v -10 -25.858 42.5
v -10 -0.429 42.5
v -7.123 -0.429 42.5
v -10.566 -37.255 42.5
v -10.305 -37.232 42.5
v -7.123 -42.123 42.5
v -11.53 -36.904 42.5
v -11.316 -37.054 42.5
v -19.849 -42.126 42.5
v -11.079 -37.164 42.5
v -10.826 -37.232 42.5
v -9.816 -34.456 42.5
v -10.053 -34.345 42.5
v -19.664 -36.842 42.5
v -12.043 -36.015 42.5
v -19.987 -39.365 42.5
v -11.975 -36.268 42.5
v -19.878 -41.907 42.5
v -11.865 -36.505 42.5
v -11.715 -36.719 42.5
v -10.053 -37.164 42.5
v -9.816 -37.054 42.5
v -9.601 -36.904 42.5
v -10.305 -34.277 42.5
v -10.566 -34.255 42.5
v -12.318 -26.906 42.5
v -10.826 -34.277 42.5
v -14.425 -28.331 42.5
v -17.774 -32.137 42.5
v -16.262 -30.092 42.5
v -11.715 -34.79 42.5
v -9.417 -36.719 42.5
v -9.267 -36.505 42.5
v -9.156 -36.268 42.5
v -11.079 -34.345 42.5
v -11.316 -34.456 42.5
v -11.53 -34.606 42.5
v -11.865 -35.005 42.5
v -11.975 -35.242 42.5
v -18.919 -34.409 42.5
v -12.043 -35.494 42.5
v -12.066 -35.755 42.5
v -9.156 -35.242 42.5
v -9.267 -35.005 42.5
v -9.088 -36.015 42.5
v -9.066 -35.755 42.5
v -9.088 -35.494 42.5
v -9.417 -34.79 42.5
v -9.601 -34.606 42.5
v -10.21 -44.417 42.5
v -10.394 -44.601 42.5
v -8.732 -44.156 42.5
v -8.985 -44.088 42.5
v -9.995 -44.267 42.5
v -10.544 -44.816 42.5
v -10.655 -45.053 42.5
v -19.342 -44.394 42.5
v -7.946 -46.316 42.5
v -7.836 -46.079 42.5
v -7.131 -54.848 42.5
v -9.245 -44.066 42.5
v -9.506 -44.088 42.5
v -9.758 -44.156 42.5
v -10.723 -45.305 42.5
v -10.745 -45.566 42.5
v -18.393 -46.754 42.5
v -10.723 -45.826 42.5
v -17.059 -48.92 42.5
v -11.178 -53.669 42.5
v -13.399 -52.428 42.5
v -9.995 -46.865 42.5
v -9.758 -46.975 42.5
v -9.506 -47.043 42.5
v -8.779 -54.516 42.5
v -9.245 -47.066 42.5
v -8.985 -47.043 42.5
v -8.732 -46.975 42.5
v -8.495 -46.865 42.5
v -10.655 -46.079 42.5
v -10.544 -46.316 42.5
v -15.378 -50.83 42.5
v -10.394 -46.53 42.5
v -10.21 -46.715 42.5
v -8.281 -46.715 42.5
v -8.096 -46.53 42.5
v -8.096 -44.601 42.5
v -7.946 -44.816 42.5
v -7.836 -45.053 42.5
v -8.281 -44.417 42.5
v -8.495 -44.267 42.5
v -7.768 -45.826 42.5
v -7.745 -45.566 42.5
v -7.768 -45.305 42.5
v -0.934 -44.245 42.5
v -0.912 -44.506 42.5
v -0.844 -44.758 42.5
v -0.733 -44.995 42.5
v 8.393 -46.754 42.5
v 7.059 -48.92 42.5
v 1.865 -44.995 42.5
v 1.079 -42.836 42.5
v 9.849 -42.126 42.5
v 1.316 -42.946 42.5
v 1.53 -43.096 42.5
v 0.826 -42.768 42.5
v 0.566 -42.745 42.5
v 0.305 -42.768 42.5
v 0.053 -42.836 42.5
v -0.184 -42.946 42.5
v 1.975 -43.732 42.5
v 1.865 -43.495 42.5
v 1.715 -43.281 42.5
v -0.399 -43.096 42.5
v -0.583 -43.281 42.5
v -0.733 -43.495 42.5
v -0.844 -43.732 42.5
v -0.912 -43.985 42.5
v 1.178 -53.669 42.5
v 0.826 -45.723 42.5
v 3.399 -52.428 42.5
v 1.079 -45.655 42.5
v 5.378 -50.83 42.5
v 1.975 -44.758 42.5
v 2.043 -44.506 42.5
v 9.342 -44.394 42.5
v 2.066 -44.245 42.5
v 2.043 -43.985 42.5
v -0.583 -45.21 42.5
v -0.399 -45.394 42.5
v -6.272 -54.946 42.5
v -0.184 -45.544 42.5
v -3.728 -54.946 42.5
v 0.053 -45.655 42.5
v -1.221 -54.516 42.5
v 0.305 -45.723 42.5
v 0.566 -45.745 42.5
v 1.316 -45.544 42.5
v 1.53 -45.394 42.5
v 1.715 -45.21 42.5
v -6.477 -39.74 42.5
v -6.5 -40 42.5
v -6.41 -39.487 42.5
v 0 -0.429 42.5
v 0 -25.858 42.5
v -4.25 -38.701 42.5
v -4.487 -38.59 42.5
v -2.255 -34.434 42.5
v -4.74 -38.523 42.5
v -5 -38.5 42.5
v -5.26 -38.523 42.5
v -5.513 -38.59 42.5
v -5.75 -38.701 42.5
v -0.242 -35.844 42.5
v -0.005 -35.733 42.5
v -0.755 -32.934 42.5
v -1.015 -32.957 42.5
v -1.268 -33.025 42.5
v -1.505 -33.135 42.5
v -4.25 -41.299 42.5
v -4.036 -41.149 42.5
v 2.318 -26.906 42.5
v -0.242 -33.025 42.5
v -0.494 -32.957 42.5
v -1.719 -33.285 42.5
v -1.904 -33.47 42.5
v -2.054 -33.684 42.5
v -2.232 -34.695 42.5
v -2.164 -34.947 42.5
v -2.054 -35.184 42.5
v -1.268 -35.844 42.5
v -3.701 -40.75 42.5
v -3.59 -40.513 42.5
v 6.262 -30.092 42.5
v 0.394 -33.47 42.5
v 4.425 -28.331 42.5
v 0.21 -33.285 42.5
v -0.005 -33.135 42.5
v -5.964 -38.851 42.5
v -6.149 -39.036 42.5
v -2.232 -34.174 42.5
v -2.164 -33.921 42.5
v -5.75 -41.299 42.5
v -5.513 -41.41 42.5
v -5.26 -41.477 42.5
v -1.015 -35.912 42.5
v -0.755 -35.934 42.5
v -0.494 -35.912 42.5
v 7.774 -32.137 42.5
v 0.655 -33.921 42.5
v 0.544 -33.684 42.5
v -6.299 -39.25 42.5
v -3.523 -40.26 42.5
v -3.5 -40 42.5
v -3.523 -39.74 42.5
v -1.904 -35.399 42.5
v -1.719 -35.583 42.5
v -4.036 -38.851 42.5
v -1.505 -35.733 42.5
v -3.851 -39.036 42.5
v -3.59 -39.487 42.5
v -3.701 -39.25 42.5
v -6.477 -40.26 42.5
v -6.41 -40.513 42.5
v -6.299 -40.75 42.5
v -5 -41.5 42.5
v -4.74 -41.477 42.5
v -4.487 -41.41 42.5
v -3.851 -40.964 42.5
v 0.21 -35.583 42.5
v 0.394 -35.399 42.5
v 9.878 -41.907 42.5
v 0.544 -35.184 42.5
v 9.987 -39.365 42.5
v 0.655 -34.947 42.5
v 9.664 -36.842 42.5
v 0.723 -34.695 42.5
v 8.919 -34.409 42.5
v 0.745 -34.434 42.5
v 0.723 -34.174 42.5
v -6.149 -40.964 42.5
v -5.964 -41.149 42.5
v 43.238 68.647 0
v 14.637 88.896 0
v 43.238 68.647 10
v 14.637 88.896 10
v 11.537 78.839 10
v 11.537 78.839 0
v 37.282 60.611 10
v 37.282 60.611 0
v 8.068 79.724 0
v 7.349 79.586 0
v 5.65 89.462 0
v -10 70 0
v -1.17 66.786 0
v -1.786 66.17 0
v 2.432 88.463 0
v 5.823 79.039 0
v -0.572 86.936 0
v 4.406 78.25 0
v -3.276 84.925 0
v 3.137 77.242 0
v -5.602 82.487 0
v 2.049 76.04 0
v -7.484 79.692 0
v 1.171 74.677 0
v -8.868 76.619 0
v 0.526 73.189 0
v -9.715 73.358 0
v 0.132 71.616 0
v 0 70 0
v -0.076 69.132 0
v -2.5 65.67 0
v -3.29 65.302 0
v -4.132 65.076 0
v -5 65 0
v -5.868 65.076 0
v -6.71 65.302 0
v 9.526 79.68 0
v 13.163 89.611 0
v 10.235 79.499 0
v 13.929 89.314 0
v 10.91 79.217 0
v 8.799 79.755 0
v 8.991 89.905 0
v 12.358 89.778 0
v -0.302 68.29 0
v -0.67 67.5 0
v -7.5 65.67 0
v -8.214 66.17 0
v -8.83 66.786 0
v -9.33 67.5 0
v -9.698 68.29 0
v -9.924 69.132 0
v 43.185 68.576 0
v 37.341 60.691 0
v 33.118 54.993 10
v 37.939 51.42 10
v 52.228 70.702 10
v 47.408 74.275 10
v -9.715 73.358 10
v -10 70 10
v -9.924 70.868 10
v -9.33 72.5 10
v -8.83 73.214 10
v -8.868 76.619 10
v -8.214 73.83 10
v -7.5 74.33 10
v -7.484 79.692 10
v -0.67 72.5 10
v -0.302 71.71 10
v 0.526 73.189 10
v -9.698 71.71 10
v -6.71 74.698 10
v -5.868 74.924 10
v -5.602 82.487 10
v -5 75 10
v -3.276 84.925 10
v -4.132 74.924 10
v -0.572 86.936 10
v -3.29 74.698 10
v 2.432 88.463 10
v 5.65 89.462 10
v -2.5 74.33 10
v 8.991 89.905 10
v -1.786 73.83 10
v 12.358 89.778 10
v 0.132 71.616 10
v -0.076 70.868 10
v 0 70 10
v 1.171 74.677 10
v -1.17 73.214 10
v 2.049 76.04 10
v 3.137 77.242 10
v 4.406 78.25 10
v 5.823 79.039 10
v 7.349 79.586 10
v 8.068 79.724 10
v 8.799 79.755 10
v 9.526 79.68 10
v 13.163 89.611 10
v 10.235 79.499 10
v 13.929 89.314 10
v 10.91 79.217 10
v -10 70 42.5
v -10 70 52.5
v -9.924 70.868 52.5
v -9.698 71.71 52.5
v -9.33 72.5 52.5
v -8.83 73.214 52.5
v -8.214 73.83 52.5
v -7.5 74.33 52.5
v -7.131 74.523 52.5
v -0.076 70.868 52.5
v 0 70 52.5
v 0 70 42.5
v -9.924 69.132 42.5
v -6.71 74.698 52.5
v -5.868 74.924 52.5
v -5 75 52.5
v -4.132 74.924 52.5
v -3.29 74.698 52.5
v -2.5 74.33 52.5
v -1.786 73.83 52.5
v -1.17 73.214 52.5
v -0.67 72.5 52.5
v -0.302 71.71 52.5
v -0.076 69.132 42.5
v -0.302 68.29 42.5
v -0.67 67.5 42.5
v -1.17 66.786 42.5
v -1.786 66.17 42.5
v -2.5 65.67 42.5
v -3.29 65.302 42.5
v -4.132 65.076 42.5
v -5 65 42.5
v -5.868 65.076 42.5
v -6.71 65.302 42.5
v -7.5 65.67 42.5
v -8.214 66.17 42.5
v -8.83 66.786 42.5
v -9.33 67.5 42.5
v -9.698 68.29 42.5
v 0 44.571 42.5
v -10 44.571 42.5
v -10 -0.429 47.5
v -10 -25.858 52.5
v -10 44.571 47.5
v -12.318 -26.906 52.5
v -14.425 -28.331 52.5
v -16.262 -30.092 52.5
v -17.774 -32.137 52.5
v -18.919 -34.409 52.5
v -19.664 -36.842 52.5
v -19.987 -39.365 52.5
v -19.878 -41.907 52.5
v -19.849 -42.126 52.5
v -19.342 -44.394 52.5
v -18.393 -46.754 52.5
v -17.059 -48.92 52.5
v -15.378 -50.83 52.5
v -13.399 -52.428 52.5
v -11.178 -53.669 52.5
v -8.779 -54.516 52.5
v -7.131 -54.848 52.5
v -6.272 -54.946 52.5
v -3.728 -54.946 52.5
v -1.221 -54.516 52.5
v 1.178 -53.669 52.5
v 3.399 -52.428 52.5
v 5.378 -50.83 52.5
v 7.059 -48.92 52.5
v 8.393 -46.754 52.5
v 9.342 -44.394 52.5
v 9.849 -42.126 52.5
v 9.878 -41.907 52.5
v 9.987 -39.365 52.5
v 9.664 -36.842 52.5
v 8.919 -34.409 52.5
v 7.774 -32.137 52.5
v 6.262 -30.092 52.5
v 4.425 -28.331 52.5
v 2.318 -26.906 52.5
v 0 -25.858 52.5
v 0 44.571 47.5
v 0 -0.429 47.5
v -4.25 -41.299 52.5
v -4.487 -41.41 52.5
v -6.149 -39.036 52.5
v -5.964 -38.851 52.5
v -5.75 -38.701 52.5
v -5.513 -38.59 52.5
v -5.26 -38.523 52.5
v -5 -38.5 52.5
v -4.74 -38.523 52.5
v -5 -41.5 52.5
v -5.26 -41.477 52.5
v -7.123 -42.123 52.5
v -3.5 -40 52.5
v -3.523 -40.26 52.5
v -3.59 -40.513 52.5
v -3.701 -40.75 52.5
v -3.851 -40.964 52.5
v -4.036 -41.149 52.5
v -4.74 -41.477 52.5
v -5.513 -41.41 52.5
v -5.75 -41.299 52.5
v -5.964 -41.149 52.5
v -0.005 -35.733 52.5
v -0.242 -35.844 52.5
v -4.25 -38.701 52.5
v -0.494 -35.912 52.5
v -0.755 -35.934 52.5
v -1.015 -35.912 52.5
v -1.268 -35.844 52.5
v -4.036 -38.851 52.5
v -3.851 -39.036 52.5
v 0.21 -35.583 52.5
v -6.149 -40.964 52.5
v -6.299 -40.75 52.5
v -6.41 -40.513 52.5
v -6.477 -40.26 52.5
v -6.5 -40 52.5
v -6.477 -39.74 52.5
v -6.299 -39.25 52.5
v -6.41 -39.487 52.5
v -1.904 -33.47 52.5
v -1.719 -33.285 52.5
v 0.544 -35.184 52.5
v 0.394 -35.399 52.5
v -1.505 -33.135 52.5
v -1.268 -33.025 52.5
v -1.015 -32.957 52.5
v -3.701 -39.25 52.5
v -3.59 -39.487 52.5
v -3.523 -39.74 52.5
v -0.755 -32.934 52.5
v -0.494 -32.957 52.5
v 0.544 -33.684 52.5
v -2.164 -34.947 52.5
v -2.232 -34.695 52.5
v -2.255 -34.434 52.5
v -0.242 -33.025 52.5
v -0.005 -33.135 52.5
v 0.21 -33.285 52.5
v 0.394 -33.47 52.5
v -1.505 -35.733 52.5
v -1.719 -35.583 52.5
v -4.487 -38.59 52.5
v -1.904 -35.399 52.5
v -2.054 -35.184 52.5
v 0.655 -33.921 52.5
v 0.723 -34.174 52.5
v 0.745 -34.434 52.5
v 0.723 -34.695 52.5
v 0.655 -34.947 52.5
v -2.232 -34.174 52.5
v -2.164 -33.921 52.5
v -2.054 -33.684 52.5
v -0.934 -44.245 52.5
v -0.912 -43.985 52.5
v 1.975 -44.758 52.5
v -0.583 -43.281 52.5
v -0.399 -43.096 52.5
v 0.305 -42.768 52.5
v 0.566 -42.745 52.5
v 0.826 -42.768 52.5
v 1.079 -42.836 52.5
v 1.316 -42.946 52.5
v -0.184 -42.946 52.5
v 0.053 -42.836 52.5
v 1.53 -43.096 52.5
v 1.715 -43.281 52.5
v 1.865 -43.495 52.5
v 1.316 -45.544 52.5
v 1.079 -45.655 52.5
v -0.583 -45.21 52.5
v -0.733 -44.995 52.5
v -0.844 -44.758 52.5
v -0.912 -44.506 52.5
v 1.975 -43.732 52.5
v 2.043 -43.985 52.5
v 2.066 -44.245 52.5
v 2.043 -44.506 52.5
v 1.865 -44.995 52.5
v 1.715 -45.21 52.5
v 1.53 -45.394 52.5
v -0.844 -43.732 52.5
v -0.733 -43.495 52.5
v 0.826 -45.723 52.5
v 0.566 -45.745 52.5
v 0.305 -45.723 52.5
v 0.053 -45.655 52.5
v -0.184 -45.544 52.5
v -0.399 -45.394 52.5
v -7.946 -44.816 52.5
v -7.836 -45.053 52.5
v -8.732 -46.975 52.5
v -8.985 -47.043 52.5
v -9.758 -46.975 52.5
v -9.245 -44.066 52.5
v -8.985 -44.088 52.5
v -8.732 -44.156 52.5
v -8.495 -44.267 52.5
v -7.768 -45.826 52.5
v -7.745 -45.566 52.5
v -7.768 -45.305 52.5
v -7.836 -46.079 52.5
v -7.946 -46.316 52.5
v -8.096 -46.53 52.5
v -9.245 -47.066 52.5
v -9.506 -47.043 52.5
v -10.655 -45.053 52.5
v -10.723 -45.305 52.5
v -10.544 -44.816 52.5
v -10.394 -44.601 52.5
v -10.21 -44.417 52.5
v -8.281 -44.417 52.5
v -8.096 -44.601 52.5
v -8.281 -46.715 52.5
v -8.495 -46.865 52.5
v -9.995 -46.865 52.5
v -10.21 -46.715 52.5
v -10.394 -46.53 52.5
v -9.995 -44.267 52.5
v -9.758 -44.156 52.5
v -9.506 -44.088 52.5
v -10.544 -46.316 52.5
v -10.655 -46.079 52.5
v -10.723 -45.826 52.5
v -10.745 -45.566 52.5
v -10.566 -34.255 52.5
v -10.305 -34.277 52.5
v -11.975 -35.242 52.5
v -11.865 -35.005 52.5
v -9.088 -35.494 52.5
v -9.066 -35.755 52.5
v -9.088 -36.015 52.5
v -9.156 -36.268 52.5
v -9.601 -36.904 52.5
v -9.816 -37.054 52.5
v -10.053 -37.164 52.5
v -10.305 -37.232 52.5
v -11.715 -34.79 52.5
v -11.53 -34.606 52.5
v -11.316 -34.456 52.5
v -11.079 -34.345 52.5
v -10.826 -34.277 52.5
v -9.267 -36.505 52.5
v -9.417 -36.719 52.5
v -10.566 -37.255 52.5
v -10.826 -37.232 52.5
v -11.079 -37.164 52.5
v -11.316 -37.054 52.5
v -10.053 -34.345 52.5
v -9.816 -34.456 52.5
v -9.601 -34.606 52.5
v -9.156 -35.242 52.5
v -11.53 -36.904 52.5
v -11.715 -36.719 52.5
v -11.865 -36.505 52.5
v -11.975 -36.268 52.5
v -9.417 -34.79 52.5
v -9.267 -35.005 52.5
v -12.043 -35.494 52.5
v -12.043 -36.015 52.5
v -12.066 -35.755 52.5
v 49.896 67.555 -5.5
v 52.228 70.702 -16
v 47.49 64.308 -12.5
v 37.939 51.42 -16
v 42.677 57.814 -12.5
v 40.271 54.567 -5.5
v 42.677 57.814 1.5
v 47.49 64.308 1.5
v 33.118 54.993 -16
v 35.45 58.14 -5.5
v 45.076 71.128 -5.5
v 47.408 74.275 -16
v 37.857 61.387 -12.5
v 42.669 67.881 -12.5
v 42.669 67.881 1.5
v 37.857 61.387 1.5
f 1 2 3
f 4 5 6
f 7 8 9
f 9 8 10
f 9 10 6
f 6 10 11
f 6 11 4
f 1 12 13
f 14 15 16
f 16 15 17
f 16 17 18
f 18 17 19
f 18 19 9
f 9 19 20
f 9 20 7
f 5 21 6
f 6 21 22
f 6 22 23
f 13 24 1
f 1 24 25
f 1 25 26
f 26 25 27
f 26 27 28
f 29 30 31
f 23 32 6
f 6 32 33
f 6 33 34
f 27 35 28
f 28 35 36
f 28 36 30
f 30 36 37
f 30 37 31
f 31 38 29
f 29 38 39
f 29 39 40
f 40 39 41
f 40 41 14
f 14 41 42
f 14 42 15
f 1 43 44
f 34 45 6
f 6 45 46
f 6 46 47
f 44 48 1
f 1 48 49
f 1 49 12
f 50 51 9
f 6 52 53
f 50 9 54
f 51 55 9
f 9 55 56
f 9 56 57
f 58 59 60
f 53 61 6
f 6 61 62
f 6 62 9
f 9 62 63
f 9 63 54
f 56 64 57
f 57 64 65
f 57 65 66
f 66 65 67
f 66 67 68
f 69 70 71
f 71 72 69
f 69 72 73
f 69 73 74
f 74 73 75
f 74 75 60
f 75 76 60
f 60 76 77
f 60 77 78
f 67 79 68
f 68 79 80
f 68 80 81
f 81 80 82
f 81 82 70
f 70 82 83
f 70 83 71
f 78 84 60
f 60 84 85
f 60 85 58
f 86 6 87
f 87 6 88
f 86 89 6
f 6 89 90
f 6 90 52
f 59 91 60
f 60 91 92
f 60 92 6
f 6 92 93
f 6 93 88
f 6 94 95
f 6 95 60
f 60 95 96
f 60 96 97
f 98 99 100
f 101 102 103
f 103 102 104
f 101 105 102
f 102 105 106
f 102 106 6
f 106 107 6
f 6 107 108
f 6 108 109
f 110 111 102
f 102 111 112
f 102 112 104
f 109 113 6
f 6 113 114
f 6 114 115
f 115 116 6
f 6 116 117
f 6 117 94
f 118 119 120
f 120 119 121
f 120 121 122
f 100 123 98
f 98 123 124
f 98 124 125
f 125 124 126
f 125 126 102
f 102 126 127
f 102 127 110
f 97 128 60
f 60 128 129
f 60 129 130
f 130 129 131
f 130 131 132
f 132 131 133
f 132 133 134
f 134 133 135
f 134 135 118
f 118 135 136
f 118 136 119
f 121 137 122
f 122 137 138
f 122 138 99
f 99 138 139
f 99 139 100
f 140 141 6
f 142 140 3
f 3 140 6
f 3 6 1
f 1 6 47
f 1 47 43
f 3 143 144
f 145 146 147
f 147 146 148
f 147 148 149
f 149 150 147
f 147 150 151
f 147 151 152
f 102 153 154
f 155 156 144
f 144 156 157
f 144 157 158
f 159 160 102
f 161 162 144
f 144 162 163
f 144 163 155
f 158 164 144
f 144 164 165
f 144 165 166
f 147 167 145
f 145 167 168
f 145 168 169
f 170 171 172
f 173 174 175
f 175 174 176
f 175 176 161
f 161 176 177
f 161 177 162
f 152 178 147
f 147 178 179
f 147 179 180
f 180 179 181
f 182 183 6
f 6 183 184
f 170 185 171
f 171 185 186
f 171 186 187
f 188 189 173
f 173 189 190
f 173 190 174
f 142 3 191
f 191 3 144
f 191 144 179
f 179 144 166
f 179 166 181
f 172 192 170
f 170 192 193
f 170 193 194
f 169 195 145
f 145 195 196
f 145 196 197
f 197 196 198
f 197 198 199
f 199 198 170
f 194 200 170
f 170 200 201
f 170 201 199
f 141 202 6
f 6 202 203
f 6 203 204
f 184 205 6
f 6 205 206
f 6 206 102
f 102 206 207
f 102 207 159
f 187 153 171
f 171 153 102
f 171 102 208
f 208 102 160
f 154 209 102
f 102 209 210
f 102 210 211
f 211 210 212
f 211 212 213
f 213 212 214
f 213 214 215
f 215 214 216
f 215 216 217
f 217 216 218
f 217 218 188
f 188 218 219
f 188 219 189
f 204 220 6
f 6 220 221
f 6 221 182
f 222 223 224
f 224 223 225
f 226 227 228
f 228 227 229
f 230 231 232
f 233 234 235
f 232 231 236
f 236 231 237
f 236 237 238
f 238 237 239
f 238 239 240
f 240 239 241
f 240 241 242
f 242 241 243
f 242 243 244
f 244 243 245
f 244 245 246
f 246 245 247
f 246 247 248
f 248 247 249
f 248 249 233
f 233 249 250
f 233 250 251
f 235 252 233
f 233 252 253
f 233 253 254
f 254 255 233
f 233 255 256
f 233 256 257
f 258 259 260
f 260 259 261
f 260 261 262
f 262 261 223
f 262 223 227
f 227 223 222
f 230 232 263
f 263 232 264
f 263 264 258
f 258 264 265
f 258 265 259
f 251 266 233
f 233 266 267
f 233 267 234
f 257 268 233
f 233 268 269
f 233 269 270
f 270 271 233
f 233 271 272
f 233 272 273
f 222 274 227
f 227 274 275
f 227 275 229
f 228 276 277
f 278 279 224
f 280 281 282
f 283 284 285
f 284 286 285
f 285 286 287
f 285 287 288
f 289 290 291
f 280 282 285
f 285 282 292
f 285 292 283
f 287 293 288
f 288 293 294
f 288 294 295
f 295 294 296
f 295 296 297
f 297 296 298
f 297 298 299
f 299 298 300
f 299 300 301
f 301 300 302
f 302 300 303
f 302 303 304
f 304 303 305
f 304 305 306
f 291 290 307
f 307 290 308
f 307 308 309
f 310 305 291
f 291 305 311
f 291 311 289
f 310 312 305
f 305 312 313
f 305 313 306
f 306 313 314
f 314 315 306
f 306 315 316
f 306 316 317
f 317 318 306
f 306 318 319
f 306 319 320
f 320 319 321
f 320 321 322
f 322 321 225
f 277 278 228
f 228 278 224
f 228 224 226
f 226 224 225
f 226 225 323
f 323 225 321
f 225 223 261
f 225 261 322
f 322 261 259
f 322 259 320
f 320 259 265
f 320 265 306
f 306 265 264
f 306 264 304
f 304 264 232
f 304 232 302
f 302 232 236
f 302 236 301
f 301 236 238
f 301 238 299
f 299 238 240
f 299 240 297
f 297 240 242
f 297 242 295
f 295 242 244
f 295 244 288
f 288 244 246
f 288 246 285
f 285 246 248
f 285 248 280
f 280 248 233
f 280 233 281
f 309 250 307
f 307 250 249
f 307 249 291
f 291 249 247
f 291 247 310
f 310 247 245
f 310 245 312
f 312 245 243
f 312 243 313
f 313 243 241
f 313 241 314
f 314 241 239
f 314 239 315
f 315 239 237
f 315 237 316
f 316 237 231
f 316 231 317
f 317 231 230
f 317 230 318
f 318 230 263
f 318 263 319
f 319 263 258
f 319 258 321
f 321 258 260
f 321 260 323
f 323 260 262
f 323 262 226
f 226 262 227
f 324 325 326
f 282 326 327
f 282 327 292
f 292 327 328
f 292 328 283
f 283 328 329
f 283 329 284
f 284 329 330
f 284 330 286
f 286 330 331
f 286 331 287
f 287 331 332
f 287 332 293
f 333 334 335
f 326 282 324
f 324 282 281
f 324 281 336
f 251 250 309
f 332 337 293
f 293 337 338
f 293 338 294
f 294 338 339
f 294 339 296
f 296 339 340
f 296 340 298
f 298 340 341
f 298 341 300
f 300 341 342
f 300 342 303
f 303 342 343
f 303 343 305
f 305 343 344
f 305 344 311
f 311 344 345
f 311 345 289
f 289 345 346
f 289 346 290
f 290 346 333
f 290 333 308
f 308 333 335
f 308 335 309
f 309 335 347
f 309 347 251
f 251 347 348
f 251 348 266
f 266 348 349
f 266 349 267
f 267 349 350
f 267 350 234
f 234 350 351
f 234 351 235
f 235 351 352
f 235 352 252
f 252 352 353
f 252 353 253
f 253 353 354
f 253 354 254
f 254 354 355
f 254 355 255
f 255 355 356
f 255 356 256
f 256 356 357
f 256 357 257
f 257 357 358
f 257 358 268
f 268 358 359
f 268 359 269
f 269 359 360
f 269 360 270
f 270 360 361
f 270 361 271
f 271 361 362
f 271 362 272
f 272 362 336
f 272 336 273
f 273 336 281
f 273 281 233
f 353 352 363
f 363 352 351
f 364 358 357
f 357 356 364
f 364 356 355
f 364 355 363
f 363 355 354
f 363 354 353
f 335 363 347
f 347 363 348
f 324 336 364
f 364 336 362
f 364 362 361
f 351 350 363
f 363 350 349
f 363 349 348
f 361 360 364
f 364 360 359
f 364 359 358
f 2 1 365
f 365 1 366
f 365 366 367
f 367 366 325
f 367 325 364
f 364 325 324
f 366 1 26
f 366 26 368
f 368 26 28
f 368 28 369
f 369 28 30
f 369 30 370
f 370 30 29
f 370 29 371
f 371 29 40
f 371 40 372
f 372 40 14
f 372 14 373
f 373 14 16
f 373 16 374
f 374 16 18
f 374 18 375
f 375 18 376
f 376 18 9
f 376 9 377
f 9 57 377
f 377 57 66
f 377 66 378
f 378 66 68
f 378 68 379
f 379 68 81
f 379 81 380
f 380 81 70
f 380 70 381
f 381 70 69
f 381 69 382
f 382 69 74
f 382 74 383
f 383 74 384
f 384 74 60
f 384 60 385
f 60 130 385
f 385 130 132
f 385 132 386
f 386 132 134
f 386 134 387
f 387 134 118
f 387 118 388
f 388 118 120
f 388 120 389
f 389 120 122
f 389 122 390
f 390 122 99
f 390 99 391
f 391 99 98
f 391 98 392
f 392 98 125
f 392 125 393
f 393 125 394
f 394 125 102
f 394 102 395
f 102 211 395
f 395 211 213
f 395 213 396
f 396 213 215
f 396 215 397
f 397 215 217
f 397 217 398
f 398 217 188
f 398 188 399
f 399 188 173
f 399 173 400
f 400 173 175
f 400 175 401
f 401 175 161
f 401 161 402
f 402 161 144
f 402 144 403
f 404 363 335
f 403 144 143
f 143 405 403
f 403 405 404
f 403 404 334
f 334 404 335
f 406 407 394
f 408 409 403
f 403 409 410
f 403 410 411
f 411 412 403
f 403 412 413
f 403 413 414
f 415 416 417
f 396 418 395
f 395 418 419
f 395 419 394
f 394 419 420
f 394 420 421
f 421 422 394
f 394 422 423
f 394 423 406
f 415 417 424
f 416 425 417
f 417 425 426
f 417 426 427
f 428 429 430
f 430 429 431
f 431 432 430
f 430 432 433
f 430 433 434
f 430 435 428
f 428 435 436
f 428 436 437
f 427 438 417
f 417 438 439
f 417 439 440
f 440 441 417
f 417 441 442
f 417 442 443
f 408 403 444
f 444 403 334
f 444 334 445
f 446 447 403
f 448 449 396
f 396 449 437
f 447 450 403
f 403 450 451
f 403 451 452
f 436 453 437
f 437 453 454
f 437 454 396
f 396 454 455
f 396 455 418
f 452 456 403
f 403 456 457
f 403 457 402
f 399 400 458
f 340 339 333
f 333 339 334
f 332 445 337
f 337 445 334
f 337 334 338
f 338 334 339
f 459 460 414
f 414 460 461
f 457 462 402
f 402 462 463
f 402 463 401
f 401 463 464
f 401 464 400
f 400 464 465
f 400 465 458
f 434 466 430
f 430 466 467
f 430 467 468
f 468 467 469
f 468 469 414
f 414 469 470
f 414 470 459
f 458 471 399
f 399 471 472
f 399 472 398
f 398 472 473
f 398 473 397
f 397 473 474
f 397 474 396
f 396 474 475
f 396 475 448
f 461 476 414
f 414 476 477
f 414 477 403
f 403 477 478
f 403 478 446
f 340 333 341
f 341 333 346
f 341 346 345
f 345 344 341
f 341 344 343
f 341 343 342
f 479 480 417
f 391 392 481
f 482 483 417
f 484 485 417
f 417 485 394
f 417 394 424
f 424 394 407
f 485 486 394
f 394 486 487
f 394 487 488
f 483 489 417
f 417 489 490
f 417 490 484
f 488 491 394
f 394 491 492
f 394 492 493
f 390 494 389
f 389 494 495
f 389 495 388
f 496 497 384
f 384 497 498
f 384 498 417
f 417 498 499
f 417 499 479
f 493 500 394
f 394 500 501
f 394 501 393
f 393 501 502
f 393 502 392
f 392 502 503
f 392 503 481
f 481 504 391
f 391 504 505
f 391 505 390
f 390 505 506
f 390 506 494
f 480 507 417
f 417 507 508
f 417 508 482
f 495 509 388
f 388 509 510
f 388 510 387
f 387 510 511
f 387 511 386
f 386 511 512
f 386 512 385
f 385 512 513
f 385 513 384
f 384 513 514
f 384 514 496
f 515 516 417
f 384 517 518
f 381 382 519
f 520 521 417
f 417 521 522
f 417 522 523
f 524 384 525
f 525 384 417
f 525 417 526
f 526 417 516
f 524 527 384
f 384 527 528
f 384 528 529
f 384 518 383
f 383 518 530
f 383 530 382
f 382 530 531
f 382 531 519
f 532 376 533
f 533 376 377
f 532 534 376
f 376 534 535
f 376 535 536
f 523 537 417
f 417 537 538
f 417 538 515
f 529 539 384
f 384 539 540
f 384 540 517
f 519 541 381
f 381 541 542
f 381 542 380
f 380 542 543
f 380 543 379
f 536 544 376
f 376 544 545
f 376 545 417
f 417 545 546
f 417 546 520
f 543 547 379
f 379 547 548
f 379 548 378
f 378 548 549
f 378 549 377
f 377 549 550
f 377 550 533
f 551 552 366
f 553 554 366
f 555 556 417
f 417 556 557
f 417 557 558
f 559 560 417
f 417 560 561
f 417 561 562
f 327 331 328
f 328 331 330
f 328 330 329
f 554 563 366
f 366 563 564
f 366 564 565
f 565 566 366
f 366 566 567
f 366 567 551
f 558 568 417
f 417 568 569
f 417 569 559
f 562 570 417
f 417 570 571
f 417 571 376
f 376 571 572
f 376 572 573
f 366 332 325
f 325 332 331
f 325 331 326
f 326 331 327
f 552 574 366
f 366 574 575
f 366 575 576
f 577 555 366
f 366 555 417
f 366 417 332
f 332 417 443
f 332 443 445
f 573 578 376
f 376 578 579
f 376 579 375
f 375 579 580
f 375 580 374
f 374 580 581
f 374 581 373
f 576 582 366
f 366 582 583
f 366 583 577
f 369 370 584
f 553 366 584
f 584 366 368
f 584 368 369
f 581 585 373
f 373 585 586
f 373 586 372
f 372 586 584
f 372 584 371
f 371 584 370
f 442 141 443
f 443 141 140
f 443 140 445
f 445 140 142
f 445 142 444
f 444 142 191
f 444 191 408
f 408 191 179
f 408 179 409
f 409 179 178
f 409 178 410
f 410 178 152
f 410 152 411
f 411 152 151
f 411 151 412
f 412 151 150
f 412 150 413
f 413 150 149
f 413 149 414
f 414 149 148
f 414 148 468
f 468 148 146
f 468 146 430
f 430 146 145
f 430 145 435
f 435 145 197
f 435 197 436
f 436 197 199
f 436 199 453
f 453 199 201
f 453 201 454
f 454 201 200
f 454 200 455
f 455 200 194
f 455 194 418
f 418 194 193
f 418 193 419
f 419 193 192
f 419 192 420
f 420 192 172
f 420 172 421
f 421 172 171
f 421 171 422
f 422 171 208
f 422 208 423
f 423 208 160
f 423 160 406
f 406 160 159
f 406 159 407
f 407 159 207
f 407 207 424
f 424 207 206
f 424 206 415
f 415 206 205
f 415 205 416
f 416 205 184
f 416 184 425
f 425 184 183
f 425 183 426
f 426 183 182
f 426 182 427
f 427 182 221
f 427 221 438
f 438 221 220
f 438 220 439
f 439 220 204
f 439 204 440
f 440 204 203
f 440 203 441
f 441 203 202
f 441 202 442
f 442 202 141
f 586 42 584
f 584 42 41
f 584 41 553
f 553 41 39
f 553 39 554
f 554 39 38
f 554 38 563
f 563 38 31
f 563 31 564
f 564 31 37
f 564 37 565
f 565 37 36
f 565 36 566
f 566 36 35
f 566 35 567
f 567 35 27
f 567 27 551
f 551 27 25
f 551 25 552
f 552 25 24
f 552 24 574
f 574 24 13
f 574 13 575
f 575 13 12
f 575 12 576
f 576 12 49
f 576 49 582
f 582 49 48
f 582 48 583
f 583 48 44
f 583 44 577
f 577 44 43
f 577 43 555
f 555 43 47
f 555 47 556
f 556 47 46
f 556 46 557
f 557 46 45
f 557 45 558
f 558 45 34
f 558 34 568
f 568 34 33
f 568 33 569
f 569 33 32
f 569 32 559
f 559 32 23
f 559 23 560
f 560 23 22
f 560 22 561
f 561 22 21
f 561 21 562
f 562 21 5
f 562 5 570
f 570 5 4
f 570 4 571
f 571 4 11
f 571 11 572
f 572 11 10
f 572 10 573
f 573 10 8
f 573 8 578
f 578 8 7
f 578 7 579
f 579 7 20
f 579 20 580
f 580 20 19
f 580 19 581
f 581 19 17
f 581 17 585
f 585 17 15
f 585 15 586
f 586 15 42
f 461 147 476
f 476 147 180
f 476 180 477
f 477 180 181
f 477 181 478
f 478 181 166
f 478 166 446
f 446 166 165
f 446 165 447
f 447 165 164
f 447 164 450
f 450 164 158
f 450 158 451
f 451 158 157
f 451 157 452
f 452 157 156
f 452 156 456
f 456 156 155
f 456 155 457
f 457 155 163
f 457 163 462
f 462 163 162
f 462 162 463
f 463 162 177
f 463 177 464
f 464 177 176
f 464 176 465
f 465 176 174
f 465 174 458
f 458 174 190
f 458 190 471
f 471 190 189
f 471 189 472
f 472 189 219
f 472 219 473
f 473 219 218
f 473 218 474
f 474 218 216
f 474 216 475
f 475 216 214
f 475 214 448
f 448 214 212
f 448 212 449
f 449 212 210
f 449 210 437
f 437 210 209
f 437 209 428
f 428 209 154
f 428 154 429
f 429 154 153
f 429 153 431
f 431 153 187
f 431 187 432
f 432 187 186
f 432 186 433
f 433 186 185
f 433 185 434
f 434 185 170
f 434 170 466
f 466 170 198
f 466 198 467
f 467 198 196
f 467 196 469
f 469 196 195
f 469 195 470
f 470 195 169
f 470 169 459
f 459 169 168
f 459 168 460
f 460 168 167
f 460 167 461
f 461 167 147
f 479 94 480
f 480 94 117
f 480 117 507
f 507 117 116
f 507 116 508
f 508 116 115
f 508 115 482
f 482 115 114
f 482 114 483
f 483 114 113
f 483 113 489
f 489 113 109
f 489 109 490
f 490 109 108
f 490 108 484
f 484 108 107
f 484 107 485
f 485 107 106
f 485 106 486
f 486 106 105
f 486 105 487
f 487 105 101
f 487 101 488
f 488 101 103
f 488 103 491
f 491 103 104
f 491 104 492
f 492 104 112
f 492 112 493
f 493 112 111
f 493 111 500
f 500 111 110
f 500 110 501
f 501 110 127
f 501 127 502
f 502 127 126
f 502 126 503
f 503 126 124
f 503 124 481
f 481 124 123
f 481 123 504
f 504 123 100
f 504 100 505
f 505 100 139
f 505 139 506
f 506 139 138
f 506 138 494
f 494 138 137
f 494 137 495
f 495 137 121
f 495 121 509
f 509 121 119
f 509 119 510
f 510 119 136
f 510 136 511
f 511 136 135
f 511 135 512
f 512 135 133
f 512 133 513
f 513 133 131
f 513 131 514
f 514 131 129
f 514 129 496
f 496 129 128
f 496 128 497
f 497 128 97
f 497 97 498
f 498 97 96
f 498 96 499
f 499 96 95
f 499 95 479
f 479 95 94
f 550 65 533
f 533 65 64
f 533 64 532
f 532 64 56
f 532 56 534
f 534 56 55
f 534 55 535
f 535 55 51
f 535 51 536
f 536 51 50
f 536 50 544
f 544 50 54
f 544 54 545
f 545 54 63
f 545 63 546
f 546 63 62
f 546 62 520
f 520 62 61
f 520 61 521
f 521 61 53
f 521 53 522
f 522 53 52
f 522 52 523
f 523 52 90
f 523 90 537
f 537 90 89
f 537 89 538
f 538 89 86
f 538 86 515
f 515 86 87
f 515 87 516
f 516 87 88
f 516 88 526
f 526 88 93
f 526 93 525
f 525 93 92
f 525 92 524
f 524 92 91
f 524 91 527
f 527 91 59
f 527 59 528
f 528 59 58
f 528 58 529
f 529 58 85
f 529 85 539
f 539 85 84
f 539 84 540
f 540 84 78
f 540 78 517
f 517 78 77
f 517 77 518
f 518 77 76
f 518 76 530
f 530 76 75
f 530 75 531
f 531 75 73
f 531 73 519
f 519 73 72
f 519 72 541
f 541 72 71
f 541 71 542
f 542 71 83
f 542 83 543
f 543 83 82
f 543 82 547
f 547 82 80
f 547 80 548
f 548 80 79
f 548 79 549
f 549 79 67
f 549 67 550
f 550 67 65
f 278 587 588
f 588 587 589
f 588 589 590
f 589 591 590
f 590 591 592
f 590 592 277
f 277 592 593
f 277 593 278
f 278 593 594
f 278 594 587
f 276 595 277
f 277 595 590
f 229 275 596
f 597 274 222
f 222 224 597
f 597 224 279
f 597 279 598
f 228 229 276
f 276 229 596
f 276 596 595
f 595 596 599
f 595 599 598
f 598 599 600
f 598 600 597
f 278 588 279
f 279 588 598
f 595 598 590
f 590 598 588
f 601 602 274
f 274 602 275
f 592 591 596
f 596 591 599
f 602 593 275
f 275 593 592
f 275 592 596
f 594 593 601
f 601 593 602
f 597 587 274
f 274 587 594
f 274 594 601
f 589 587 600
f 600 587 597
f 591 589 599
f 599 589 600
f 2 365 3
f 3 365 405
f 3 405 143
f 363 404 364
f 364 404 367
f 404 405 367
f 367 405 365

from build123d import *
from build123d.topology import SkipClean

# Parameters (mm, degrees)
BOSS_EXTRUDE1_DEPTH  = 10
SKETCH6_R            = 5
BOSS_EXTRUDE4_DEPTH  = 32.5
SKETCH10_W           = 10
SKETCH10_H           = 45
CUT_EXTRUDE5_DEPTH   = 10
CUT_EXTRUDE10_START  = -10
CUT_EXTRUDE10_DEPTH  = 10
BOSS_EXTRUDE8_DEPTH  = 10
SKETCH19_R           = 1.5
CUT_EXTRUDE11_DEPTH  = 110.357366333
BOSS_EXTRUDE9_DEPTH  = 16
BOSS_EXTRUDE10_DEPTH = 10
CUT_EXTRUDE12_DEPTH  = 6
SKETCH24_W           = 5
SKETCH24_H           = 45
CUT_EXTRUDE14_DEPTH  = 10


with BuildPart() as part:
    # Sketch1 → Boss-Extrude1 (new body)
    with BuildSketch(Plane.XY):
        with BuildLine():
            Line((-10, 0), (0, 0))
            Line((0, 0), (0, 70))
            ThreePointArc((0, 70), (2.048726408, 76.039631539), (7.349256082, 79.586293943))
            ThreePointArc((7.349256082, 79.586293943), (9.526416607, 79.679930085), (11.536628421, 78.838595348))
            Line((11.536628421, 78.838595348), (37.563736921, 60.412060989))
            ThreePointArc((37.563736921, 60.412060989), (44.533661589, 61.603761507), (43.341961071, 68.573686175))
            Line((43.341961071, 68.573686175), (14.637016156, 88.896060969))
            ThreePointArc((14.637016156, 88.896060969), (13.552177116, 89.478358799), (12.35793082, 89.777895591))
            ThreePointArc((12.35793082, 89.777895591), (11.217987252, 89.884880656), (10.073780788, 89.926217211))
            ThreePointArc((10.073780788, 89.926217211), (4.526251311, 89.180986887), (-0.595162082, 86.922319935))
            ThreePointArc((-0.595162082, 86.922319935), (-4.504675426, 83.740794413), (-7.490811299, 79.680081201))
            ThreePointArc((-7.490811299, 79.680081201), (-9.362505501, 75), (-10, 70))
            Line((-10, 70), (-10, 0))
        make_face()
    extrude(amount=BOSS_EXTRUDE1_DEPTH)

    # Sketch6 → Boss-Extrude4 (add)
    with BuildSketch(Plane.XY.offset(10)):
        with Locations((-5, 70)):
            Circle(SKETCH6_R)
    extrude(amount=BOSS_EXTRUDE4_DEPTH)

    # Sketch10 → Cut-Extrude5 (cut)
    with BuildSketch(Plane(origin=(0, 0, 0), x_dir=(-1, 0, 0), z_dir=(0, 0, -1))):
        with Locations((5, 22.5)):
            Rectangle(SKETCH10_W, SKETCH10_H)
    extrude(amount=-CUT_EXTRUDE5_DEPTH, mode=Mode.SUBTRACT)

    # Sketch17 → Cut-Extrude10 (cut)
    with BuildSketch(Plane.XY.offset(10).offset(CUT_EXTRUDE10_START)):
        with BuildLine():
            Line((-10, 45), (0, 45))
            Line((0, 45), (0, 70))
            ThreePointArc((0, 70), (-5, 65), (-10, 70))
            Line((-10, 70), (-10, 45))
        make_face()
    extrude(amount=CUT_EXTRUDE10_DEPTH, mode=Mode.SUBTRACT)

    # Sketch18 → Boss-Extrude8 (add)
    with SkipClean():  # the faces are left unmerged after this step: merging them gives an invalid solid
        with BuildSketch(Plane.XY.offset(42.5)):
            with BuildLine():
                Line((0, 70), (0, -25.857864376))
                ThreePointArc((0, -25.857864376), (-5, -55), (-10, -25.857864376))
                Line((-10, -25.857864376), (-10, 70))
                ThreePointArc((-10, 70), (-5, 75), (0, 70))
            make_face()
        extrude(amount=BOSS_EXTRUDE8_DEPTH)
    add(part.part.scale(1), mode=Mode.REPLACE)  # the faces are merged on a copy

    # Sketch19 → Cut-Extrude11 (cut, through all)
    with BuildSketch(Plane(origin=(0, 0, 42.5), x_dir=(-1, 0, 0), z_dir=(0, 0, -1))):
        with Locations((5, -40)):
            Circle(SKETCH19_R)
        with Locations((10.565661313, -35.754600825)):
            Circle(SKETCH19_R)
        with Locations((0.754600825, -34.434338687)):
            Circle(SKETCH19_R)
        with Locations((-0.565661313, -44.245399175)):
            Circle(SKETCH19_R)
        with Locations((9.245399175, -45.565661313)):
            Circle(SKETCH19_R)
    extrude(amount=-CUT_EXTRUDE11_DEPTH, mode=Mode.SUBTRACT)

    # Sketch20 → Boss-Extrude9 (add)
    with BuildSketch(Plane(origin=(0, 0, 0), x_dir=(-1, 0, 0), z_dir=(0, 0, -1))):
        Polygon((-52.228493699, 70.702095376), (-47.407985115, 74.274587083), (-33.118018288, 54.992552749), (-37.938526871, 51.420061042), align=None)
    extrude(amount=BOSS_EXTRUDE9_DEPTH)

    # Sketch21 → Boss-Extrude10 (add)
    with BuildSketch(Plane.XY):
        with BuildLine():
            Line((43.237723755, 68.647483557), (43.341961071, 68.573686175))
            ThreePointArc((43.341961071, 68.573686175), (44.533661589, 61.603761507), (37.563736921, 60.412060989))
            Line((37.563736921, 60.412060989), (37.282165609, 60.611406354))
            Line((37.282165609, 60.611406354), (33.118018288, 54.992552749))
            Line((33.118018288, 54.992552749), (37.938526871, 51.420061042))
            Line((37.938526871, 51.420061042), (52.228493699, 70.702095376))
            Line((52.228493699, 70.702095376), (47.407985115, 74.274587083))
            Line((47.407985115, 74.274587083), (43.237723755, 68.647483557))
        make_face()
    extrude(amount=BOSS_EXTRUDE10_DEPTH)

    # Sketch22 → Cut-Extrude12 (cut)
    with BuildSketch(Plane(origin=(-0.109097108, 0.080852156, 0), x_dir=(0, 0, -1), z_dir=(0.8034180972667123, -0.5954152844732287, 0))):
        Polygon((12.5, 71.859534489), (12.5, 79.942438258), (5.5, 83.983890142), (-1.5, 79.942438258), (-1.5, 71.859534489), (5.5, 67.818082605), align=None)
    extrude(amount=-CUT_EXTRUDE12_DEPTH, mode=Mode.SUBTRACT)

    # Sketch24 → Cut-Extrude14 (cut)
    with BuildSketch(Plane.ZY.offset(10)):
        with Locations((45, 22.071067812)):
            Rectangle(SKETCH24_W, SKETCH24_H)
    extrude(amount=-CUT_EXTRUDE14_DEPTH, mode=Mode.SUBTRACT)


solid = part.part
